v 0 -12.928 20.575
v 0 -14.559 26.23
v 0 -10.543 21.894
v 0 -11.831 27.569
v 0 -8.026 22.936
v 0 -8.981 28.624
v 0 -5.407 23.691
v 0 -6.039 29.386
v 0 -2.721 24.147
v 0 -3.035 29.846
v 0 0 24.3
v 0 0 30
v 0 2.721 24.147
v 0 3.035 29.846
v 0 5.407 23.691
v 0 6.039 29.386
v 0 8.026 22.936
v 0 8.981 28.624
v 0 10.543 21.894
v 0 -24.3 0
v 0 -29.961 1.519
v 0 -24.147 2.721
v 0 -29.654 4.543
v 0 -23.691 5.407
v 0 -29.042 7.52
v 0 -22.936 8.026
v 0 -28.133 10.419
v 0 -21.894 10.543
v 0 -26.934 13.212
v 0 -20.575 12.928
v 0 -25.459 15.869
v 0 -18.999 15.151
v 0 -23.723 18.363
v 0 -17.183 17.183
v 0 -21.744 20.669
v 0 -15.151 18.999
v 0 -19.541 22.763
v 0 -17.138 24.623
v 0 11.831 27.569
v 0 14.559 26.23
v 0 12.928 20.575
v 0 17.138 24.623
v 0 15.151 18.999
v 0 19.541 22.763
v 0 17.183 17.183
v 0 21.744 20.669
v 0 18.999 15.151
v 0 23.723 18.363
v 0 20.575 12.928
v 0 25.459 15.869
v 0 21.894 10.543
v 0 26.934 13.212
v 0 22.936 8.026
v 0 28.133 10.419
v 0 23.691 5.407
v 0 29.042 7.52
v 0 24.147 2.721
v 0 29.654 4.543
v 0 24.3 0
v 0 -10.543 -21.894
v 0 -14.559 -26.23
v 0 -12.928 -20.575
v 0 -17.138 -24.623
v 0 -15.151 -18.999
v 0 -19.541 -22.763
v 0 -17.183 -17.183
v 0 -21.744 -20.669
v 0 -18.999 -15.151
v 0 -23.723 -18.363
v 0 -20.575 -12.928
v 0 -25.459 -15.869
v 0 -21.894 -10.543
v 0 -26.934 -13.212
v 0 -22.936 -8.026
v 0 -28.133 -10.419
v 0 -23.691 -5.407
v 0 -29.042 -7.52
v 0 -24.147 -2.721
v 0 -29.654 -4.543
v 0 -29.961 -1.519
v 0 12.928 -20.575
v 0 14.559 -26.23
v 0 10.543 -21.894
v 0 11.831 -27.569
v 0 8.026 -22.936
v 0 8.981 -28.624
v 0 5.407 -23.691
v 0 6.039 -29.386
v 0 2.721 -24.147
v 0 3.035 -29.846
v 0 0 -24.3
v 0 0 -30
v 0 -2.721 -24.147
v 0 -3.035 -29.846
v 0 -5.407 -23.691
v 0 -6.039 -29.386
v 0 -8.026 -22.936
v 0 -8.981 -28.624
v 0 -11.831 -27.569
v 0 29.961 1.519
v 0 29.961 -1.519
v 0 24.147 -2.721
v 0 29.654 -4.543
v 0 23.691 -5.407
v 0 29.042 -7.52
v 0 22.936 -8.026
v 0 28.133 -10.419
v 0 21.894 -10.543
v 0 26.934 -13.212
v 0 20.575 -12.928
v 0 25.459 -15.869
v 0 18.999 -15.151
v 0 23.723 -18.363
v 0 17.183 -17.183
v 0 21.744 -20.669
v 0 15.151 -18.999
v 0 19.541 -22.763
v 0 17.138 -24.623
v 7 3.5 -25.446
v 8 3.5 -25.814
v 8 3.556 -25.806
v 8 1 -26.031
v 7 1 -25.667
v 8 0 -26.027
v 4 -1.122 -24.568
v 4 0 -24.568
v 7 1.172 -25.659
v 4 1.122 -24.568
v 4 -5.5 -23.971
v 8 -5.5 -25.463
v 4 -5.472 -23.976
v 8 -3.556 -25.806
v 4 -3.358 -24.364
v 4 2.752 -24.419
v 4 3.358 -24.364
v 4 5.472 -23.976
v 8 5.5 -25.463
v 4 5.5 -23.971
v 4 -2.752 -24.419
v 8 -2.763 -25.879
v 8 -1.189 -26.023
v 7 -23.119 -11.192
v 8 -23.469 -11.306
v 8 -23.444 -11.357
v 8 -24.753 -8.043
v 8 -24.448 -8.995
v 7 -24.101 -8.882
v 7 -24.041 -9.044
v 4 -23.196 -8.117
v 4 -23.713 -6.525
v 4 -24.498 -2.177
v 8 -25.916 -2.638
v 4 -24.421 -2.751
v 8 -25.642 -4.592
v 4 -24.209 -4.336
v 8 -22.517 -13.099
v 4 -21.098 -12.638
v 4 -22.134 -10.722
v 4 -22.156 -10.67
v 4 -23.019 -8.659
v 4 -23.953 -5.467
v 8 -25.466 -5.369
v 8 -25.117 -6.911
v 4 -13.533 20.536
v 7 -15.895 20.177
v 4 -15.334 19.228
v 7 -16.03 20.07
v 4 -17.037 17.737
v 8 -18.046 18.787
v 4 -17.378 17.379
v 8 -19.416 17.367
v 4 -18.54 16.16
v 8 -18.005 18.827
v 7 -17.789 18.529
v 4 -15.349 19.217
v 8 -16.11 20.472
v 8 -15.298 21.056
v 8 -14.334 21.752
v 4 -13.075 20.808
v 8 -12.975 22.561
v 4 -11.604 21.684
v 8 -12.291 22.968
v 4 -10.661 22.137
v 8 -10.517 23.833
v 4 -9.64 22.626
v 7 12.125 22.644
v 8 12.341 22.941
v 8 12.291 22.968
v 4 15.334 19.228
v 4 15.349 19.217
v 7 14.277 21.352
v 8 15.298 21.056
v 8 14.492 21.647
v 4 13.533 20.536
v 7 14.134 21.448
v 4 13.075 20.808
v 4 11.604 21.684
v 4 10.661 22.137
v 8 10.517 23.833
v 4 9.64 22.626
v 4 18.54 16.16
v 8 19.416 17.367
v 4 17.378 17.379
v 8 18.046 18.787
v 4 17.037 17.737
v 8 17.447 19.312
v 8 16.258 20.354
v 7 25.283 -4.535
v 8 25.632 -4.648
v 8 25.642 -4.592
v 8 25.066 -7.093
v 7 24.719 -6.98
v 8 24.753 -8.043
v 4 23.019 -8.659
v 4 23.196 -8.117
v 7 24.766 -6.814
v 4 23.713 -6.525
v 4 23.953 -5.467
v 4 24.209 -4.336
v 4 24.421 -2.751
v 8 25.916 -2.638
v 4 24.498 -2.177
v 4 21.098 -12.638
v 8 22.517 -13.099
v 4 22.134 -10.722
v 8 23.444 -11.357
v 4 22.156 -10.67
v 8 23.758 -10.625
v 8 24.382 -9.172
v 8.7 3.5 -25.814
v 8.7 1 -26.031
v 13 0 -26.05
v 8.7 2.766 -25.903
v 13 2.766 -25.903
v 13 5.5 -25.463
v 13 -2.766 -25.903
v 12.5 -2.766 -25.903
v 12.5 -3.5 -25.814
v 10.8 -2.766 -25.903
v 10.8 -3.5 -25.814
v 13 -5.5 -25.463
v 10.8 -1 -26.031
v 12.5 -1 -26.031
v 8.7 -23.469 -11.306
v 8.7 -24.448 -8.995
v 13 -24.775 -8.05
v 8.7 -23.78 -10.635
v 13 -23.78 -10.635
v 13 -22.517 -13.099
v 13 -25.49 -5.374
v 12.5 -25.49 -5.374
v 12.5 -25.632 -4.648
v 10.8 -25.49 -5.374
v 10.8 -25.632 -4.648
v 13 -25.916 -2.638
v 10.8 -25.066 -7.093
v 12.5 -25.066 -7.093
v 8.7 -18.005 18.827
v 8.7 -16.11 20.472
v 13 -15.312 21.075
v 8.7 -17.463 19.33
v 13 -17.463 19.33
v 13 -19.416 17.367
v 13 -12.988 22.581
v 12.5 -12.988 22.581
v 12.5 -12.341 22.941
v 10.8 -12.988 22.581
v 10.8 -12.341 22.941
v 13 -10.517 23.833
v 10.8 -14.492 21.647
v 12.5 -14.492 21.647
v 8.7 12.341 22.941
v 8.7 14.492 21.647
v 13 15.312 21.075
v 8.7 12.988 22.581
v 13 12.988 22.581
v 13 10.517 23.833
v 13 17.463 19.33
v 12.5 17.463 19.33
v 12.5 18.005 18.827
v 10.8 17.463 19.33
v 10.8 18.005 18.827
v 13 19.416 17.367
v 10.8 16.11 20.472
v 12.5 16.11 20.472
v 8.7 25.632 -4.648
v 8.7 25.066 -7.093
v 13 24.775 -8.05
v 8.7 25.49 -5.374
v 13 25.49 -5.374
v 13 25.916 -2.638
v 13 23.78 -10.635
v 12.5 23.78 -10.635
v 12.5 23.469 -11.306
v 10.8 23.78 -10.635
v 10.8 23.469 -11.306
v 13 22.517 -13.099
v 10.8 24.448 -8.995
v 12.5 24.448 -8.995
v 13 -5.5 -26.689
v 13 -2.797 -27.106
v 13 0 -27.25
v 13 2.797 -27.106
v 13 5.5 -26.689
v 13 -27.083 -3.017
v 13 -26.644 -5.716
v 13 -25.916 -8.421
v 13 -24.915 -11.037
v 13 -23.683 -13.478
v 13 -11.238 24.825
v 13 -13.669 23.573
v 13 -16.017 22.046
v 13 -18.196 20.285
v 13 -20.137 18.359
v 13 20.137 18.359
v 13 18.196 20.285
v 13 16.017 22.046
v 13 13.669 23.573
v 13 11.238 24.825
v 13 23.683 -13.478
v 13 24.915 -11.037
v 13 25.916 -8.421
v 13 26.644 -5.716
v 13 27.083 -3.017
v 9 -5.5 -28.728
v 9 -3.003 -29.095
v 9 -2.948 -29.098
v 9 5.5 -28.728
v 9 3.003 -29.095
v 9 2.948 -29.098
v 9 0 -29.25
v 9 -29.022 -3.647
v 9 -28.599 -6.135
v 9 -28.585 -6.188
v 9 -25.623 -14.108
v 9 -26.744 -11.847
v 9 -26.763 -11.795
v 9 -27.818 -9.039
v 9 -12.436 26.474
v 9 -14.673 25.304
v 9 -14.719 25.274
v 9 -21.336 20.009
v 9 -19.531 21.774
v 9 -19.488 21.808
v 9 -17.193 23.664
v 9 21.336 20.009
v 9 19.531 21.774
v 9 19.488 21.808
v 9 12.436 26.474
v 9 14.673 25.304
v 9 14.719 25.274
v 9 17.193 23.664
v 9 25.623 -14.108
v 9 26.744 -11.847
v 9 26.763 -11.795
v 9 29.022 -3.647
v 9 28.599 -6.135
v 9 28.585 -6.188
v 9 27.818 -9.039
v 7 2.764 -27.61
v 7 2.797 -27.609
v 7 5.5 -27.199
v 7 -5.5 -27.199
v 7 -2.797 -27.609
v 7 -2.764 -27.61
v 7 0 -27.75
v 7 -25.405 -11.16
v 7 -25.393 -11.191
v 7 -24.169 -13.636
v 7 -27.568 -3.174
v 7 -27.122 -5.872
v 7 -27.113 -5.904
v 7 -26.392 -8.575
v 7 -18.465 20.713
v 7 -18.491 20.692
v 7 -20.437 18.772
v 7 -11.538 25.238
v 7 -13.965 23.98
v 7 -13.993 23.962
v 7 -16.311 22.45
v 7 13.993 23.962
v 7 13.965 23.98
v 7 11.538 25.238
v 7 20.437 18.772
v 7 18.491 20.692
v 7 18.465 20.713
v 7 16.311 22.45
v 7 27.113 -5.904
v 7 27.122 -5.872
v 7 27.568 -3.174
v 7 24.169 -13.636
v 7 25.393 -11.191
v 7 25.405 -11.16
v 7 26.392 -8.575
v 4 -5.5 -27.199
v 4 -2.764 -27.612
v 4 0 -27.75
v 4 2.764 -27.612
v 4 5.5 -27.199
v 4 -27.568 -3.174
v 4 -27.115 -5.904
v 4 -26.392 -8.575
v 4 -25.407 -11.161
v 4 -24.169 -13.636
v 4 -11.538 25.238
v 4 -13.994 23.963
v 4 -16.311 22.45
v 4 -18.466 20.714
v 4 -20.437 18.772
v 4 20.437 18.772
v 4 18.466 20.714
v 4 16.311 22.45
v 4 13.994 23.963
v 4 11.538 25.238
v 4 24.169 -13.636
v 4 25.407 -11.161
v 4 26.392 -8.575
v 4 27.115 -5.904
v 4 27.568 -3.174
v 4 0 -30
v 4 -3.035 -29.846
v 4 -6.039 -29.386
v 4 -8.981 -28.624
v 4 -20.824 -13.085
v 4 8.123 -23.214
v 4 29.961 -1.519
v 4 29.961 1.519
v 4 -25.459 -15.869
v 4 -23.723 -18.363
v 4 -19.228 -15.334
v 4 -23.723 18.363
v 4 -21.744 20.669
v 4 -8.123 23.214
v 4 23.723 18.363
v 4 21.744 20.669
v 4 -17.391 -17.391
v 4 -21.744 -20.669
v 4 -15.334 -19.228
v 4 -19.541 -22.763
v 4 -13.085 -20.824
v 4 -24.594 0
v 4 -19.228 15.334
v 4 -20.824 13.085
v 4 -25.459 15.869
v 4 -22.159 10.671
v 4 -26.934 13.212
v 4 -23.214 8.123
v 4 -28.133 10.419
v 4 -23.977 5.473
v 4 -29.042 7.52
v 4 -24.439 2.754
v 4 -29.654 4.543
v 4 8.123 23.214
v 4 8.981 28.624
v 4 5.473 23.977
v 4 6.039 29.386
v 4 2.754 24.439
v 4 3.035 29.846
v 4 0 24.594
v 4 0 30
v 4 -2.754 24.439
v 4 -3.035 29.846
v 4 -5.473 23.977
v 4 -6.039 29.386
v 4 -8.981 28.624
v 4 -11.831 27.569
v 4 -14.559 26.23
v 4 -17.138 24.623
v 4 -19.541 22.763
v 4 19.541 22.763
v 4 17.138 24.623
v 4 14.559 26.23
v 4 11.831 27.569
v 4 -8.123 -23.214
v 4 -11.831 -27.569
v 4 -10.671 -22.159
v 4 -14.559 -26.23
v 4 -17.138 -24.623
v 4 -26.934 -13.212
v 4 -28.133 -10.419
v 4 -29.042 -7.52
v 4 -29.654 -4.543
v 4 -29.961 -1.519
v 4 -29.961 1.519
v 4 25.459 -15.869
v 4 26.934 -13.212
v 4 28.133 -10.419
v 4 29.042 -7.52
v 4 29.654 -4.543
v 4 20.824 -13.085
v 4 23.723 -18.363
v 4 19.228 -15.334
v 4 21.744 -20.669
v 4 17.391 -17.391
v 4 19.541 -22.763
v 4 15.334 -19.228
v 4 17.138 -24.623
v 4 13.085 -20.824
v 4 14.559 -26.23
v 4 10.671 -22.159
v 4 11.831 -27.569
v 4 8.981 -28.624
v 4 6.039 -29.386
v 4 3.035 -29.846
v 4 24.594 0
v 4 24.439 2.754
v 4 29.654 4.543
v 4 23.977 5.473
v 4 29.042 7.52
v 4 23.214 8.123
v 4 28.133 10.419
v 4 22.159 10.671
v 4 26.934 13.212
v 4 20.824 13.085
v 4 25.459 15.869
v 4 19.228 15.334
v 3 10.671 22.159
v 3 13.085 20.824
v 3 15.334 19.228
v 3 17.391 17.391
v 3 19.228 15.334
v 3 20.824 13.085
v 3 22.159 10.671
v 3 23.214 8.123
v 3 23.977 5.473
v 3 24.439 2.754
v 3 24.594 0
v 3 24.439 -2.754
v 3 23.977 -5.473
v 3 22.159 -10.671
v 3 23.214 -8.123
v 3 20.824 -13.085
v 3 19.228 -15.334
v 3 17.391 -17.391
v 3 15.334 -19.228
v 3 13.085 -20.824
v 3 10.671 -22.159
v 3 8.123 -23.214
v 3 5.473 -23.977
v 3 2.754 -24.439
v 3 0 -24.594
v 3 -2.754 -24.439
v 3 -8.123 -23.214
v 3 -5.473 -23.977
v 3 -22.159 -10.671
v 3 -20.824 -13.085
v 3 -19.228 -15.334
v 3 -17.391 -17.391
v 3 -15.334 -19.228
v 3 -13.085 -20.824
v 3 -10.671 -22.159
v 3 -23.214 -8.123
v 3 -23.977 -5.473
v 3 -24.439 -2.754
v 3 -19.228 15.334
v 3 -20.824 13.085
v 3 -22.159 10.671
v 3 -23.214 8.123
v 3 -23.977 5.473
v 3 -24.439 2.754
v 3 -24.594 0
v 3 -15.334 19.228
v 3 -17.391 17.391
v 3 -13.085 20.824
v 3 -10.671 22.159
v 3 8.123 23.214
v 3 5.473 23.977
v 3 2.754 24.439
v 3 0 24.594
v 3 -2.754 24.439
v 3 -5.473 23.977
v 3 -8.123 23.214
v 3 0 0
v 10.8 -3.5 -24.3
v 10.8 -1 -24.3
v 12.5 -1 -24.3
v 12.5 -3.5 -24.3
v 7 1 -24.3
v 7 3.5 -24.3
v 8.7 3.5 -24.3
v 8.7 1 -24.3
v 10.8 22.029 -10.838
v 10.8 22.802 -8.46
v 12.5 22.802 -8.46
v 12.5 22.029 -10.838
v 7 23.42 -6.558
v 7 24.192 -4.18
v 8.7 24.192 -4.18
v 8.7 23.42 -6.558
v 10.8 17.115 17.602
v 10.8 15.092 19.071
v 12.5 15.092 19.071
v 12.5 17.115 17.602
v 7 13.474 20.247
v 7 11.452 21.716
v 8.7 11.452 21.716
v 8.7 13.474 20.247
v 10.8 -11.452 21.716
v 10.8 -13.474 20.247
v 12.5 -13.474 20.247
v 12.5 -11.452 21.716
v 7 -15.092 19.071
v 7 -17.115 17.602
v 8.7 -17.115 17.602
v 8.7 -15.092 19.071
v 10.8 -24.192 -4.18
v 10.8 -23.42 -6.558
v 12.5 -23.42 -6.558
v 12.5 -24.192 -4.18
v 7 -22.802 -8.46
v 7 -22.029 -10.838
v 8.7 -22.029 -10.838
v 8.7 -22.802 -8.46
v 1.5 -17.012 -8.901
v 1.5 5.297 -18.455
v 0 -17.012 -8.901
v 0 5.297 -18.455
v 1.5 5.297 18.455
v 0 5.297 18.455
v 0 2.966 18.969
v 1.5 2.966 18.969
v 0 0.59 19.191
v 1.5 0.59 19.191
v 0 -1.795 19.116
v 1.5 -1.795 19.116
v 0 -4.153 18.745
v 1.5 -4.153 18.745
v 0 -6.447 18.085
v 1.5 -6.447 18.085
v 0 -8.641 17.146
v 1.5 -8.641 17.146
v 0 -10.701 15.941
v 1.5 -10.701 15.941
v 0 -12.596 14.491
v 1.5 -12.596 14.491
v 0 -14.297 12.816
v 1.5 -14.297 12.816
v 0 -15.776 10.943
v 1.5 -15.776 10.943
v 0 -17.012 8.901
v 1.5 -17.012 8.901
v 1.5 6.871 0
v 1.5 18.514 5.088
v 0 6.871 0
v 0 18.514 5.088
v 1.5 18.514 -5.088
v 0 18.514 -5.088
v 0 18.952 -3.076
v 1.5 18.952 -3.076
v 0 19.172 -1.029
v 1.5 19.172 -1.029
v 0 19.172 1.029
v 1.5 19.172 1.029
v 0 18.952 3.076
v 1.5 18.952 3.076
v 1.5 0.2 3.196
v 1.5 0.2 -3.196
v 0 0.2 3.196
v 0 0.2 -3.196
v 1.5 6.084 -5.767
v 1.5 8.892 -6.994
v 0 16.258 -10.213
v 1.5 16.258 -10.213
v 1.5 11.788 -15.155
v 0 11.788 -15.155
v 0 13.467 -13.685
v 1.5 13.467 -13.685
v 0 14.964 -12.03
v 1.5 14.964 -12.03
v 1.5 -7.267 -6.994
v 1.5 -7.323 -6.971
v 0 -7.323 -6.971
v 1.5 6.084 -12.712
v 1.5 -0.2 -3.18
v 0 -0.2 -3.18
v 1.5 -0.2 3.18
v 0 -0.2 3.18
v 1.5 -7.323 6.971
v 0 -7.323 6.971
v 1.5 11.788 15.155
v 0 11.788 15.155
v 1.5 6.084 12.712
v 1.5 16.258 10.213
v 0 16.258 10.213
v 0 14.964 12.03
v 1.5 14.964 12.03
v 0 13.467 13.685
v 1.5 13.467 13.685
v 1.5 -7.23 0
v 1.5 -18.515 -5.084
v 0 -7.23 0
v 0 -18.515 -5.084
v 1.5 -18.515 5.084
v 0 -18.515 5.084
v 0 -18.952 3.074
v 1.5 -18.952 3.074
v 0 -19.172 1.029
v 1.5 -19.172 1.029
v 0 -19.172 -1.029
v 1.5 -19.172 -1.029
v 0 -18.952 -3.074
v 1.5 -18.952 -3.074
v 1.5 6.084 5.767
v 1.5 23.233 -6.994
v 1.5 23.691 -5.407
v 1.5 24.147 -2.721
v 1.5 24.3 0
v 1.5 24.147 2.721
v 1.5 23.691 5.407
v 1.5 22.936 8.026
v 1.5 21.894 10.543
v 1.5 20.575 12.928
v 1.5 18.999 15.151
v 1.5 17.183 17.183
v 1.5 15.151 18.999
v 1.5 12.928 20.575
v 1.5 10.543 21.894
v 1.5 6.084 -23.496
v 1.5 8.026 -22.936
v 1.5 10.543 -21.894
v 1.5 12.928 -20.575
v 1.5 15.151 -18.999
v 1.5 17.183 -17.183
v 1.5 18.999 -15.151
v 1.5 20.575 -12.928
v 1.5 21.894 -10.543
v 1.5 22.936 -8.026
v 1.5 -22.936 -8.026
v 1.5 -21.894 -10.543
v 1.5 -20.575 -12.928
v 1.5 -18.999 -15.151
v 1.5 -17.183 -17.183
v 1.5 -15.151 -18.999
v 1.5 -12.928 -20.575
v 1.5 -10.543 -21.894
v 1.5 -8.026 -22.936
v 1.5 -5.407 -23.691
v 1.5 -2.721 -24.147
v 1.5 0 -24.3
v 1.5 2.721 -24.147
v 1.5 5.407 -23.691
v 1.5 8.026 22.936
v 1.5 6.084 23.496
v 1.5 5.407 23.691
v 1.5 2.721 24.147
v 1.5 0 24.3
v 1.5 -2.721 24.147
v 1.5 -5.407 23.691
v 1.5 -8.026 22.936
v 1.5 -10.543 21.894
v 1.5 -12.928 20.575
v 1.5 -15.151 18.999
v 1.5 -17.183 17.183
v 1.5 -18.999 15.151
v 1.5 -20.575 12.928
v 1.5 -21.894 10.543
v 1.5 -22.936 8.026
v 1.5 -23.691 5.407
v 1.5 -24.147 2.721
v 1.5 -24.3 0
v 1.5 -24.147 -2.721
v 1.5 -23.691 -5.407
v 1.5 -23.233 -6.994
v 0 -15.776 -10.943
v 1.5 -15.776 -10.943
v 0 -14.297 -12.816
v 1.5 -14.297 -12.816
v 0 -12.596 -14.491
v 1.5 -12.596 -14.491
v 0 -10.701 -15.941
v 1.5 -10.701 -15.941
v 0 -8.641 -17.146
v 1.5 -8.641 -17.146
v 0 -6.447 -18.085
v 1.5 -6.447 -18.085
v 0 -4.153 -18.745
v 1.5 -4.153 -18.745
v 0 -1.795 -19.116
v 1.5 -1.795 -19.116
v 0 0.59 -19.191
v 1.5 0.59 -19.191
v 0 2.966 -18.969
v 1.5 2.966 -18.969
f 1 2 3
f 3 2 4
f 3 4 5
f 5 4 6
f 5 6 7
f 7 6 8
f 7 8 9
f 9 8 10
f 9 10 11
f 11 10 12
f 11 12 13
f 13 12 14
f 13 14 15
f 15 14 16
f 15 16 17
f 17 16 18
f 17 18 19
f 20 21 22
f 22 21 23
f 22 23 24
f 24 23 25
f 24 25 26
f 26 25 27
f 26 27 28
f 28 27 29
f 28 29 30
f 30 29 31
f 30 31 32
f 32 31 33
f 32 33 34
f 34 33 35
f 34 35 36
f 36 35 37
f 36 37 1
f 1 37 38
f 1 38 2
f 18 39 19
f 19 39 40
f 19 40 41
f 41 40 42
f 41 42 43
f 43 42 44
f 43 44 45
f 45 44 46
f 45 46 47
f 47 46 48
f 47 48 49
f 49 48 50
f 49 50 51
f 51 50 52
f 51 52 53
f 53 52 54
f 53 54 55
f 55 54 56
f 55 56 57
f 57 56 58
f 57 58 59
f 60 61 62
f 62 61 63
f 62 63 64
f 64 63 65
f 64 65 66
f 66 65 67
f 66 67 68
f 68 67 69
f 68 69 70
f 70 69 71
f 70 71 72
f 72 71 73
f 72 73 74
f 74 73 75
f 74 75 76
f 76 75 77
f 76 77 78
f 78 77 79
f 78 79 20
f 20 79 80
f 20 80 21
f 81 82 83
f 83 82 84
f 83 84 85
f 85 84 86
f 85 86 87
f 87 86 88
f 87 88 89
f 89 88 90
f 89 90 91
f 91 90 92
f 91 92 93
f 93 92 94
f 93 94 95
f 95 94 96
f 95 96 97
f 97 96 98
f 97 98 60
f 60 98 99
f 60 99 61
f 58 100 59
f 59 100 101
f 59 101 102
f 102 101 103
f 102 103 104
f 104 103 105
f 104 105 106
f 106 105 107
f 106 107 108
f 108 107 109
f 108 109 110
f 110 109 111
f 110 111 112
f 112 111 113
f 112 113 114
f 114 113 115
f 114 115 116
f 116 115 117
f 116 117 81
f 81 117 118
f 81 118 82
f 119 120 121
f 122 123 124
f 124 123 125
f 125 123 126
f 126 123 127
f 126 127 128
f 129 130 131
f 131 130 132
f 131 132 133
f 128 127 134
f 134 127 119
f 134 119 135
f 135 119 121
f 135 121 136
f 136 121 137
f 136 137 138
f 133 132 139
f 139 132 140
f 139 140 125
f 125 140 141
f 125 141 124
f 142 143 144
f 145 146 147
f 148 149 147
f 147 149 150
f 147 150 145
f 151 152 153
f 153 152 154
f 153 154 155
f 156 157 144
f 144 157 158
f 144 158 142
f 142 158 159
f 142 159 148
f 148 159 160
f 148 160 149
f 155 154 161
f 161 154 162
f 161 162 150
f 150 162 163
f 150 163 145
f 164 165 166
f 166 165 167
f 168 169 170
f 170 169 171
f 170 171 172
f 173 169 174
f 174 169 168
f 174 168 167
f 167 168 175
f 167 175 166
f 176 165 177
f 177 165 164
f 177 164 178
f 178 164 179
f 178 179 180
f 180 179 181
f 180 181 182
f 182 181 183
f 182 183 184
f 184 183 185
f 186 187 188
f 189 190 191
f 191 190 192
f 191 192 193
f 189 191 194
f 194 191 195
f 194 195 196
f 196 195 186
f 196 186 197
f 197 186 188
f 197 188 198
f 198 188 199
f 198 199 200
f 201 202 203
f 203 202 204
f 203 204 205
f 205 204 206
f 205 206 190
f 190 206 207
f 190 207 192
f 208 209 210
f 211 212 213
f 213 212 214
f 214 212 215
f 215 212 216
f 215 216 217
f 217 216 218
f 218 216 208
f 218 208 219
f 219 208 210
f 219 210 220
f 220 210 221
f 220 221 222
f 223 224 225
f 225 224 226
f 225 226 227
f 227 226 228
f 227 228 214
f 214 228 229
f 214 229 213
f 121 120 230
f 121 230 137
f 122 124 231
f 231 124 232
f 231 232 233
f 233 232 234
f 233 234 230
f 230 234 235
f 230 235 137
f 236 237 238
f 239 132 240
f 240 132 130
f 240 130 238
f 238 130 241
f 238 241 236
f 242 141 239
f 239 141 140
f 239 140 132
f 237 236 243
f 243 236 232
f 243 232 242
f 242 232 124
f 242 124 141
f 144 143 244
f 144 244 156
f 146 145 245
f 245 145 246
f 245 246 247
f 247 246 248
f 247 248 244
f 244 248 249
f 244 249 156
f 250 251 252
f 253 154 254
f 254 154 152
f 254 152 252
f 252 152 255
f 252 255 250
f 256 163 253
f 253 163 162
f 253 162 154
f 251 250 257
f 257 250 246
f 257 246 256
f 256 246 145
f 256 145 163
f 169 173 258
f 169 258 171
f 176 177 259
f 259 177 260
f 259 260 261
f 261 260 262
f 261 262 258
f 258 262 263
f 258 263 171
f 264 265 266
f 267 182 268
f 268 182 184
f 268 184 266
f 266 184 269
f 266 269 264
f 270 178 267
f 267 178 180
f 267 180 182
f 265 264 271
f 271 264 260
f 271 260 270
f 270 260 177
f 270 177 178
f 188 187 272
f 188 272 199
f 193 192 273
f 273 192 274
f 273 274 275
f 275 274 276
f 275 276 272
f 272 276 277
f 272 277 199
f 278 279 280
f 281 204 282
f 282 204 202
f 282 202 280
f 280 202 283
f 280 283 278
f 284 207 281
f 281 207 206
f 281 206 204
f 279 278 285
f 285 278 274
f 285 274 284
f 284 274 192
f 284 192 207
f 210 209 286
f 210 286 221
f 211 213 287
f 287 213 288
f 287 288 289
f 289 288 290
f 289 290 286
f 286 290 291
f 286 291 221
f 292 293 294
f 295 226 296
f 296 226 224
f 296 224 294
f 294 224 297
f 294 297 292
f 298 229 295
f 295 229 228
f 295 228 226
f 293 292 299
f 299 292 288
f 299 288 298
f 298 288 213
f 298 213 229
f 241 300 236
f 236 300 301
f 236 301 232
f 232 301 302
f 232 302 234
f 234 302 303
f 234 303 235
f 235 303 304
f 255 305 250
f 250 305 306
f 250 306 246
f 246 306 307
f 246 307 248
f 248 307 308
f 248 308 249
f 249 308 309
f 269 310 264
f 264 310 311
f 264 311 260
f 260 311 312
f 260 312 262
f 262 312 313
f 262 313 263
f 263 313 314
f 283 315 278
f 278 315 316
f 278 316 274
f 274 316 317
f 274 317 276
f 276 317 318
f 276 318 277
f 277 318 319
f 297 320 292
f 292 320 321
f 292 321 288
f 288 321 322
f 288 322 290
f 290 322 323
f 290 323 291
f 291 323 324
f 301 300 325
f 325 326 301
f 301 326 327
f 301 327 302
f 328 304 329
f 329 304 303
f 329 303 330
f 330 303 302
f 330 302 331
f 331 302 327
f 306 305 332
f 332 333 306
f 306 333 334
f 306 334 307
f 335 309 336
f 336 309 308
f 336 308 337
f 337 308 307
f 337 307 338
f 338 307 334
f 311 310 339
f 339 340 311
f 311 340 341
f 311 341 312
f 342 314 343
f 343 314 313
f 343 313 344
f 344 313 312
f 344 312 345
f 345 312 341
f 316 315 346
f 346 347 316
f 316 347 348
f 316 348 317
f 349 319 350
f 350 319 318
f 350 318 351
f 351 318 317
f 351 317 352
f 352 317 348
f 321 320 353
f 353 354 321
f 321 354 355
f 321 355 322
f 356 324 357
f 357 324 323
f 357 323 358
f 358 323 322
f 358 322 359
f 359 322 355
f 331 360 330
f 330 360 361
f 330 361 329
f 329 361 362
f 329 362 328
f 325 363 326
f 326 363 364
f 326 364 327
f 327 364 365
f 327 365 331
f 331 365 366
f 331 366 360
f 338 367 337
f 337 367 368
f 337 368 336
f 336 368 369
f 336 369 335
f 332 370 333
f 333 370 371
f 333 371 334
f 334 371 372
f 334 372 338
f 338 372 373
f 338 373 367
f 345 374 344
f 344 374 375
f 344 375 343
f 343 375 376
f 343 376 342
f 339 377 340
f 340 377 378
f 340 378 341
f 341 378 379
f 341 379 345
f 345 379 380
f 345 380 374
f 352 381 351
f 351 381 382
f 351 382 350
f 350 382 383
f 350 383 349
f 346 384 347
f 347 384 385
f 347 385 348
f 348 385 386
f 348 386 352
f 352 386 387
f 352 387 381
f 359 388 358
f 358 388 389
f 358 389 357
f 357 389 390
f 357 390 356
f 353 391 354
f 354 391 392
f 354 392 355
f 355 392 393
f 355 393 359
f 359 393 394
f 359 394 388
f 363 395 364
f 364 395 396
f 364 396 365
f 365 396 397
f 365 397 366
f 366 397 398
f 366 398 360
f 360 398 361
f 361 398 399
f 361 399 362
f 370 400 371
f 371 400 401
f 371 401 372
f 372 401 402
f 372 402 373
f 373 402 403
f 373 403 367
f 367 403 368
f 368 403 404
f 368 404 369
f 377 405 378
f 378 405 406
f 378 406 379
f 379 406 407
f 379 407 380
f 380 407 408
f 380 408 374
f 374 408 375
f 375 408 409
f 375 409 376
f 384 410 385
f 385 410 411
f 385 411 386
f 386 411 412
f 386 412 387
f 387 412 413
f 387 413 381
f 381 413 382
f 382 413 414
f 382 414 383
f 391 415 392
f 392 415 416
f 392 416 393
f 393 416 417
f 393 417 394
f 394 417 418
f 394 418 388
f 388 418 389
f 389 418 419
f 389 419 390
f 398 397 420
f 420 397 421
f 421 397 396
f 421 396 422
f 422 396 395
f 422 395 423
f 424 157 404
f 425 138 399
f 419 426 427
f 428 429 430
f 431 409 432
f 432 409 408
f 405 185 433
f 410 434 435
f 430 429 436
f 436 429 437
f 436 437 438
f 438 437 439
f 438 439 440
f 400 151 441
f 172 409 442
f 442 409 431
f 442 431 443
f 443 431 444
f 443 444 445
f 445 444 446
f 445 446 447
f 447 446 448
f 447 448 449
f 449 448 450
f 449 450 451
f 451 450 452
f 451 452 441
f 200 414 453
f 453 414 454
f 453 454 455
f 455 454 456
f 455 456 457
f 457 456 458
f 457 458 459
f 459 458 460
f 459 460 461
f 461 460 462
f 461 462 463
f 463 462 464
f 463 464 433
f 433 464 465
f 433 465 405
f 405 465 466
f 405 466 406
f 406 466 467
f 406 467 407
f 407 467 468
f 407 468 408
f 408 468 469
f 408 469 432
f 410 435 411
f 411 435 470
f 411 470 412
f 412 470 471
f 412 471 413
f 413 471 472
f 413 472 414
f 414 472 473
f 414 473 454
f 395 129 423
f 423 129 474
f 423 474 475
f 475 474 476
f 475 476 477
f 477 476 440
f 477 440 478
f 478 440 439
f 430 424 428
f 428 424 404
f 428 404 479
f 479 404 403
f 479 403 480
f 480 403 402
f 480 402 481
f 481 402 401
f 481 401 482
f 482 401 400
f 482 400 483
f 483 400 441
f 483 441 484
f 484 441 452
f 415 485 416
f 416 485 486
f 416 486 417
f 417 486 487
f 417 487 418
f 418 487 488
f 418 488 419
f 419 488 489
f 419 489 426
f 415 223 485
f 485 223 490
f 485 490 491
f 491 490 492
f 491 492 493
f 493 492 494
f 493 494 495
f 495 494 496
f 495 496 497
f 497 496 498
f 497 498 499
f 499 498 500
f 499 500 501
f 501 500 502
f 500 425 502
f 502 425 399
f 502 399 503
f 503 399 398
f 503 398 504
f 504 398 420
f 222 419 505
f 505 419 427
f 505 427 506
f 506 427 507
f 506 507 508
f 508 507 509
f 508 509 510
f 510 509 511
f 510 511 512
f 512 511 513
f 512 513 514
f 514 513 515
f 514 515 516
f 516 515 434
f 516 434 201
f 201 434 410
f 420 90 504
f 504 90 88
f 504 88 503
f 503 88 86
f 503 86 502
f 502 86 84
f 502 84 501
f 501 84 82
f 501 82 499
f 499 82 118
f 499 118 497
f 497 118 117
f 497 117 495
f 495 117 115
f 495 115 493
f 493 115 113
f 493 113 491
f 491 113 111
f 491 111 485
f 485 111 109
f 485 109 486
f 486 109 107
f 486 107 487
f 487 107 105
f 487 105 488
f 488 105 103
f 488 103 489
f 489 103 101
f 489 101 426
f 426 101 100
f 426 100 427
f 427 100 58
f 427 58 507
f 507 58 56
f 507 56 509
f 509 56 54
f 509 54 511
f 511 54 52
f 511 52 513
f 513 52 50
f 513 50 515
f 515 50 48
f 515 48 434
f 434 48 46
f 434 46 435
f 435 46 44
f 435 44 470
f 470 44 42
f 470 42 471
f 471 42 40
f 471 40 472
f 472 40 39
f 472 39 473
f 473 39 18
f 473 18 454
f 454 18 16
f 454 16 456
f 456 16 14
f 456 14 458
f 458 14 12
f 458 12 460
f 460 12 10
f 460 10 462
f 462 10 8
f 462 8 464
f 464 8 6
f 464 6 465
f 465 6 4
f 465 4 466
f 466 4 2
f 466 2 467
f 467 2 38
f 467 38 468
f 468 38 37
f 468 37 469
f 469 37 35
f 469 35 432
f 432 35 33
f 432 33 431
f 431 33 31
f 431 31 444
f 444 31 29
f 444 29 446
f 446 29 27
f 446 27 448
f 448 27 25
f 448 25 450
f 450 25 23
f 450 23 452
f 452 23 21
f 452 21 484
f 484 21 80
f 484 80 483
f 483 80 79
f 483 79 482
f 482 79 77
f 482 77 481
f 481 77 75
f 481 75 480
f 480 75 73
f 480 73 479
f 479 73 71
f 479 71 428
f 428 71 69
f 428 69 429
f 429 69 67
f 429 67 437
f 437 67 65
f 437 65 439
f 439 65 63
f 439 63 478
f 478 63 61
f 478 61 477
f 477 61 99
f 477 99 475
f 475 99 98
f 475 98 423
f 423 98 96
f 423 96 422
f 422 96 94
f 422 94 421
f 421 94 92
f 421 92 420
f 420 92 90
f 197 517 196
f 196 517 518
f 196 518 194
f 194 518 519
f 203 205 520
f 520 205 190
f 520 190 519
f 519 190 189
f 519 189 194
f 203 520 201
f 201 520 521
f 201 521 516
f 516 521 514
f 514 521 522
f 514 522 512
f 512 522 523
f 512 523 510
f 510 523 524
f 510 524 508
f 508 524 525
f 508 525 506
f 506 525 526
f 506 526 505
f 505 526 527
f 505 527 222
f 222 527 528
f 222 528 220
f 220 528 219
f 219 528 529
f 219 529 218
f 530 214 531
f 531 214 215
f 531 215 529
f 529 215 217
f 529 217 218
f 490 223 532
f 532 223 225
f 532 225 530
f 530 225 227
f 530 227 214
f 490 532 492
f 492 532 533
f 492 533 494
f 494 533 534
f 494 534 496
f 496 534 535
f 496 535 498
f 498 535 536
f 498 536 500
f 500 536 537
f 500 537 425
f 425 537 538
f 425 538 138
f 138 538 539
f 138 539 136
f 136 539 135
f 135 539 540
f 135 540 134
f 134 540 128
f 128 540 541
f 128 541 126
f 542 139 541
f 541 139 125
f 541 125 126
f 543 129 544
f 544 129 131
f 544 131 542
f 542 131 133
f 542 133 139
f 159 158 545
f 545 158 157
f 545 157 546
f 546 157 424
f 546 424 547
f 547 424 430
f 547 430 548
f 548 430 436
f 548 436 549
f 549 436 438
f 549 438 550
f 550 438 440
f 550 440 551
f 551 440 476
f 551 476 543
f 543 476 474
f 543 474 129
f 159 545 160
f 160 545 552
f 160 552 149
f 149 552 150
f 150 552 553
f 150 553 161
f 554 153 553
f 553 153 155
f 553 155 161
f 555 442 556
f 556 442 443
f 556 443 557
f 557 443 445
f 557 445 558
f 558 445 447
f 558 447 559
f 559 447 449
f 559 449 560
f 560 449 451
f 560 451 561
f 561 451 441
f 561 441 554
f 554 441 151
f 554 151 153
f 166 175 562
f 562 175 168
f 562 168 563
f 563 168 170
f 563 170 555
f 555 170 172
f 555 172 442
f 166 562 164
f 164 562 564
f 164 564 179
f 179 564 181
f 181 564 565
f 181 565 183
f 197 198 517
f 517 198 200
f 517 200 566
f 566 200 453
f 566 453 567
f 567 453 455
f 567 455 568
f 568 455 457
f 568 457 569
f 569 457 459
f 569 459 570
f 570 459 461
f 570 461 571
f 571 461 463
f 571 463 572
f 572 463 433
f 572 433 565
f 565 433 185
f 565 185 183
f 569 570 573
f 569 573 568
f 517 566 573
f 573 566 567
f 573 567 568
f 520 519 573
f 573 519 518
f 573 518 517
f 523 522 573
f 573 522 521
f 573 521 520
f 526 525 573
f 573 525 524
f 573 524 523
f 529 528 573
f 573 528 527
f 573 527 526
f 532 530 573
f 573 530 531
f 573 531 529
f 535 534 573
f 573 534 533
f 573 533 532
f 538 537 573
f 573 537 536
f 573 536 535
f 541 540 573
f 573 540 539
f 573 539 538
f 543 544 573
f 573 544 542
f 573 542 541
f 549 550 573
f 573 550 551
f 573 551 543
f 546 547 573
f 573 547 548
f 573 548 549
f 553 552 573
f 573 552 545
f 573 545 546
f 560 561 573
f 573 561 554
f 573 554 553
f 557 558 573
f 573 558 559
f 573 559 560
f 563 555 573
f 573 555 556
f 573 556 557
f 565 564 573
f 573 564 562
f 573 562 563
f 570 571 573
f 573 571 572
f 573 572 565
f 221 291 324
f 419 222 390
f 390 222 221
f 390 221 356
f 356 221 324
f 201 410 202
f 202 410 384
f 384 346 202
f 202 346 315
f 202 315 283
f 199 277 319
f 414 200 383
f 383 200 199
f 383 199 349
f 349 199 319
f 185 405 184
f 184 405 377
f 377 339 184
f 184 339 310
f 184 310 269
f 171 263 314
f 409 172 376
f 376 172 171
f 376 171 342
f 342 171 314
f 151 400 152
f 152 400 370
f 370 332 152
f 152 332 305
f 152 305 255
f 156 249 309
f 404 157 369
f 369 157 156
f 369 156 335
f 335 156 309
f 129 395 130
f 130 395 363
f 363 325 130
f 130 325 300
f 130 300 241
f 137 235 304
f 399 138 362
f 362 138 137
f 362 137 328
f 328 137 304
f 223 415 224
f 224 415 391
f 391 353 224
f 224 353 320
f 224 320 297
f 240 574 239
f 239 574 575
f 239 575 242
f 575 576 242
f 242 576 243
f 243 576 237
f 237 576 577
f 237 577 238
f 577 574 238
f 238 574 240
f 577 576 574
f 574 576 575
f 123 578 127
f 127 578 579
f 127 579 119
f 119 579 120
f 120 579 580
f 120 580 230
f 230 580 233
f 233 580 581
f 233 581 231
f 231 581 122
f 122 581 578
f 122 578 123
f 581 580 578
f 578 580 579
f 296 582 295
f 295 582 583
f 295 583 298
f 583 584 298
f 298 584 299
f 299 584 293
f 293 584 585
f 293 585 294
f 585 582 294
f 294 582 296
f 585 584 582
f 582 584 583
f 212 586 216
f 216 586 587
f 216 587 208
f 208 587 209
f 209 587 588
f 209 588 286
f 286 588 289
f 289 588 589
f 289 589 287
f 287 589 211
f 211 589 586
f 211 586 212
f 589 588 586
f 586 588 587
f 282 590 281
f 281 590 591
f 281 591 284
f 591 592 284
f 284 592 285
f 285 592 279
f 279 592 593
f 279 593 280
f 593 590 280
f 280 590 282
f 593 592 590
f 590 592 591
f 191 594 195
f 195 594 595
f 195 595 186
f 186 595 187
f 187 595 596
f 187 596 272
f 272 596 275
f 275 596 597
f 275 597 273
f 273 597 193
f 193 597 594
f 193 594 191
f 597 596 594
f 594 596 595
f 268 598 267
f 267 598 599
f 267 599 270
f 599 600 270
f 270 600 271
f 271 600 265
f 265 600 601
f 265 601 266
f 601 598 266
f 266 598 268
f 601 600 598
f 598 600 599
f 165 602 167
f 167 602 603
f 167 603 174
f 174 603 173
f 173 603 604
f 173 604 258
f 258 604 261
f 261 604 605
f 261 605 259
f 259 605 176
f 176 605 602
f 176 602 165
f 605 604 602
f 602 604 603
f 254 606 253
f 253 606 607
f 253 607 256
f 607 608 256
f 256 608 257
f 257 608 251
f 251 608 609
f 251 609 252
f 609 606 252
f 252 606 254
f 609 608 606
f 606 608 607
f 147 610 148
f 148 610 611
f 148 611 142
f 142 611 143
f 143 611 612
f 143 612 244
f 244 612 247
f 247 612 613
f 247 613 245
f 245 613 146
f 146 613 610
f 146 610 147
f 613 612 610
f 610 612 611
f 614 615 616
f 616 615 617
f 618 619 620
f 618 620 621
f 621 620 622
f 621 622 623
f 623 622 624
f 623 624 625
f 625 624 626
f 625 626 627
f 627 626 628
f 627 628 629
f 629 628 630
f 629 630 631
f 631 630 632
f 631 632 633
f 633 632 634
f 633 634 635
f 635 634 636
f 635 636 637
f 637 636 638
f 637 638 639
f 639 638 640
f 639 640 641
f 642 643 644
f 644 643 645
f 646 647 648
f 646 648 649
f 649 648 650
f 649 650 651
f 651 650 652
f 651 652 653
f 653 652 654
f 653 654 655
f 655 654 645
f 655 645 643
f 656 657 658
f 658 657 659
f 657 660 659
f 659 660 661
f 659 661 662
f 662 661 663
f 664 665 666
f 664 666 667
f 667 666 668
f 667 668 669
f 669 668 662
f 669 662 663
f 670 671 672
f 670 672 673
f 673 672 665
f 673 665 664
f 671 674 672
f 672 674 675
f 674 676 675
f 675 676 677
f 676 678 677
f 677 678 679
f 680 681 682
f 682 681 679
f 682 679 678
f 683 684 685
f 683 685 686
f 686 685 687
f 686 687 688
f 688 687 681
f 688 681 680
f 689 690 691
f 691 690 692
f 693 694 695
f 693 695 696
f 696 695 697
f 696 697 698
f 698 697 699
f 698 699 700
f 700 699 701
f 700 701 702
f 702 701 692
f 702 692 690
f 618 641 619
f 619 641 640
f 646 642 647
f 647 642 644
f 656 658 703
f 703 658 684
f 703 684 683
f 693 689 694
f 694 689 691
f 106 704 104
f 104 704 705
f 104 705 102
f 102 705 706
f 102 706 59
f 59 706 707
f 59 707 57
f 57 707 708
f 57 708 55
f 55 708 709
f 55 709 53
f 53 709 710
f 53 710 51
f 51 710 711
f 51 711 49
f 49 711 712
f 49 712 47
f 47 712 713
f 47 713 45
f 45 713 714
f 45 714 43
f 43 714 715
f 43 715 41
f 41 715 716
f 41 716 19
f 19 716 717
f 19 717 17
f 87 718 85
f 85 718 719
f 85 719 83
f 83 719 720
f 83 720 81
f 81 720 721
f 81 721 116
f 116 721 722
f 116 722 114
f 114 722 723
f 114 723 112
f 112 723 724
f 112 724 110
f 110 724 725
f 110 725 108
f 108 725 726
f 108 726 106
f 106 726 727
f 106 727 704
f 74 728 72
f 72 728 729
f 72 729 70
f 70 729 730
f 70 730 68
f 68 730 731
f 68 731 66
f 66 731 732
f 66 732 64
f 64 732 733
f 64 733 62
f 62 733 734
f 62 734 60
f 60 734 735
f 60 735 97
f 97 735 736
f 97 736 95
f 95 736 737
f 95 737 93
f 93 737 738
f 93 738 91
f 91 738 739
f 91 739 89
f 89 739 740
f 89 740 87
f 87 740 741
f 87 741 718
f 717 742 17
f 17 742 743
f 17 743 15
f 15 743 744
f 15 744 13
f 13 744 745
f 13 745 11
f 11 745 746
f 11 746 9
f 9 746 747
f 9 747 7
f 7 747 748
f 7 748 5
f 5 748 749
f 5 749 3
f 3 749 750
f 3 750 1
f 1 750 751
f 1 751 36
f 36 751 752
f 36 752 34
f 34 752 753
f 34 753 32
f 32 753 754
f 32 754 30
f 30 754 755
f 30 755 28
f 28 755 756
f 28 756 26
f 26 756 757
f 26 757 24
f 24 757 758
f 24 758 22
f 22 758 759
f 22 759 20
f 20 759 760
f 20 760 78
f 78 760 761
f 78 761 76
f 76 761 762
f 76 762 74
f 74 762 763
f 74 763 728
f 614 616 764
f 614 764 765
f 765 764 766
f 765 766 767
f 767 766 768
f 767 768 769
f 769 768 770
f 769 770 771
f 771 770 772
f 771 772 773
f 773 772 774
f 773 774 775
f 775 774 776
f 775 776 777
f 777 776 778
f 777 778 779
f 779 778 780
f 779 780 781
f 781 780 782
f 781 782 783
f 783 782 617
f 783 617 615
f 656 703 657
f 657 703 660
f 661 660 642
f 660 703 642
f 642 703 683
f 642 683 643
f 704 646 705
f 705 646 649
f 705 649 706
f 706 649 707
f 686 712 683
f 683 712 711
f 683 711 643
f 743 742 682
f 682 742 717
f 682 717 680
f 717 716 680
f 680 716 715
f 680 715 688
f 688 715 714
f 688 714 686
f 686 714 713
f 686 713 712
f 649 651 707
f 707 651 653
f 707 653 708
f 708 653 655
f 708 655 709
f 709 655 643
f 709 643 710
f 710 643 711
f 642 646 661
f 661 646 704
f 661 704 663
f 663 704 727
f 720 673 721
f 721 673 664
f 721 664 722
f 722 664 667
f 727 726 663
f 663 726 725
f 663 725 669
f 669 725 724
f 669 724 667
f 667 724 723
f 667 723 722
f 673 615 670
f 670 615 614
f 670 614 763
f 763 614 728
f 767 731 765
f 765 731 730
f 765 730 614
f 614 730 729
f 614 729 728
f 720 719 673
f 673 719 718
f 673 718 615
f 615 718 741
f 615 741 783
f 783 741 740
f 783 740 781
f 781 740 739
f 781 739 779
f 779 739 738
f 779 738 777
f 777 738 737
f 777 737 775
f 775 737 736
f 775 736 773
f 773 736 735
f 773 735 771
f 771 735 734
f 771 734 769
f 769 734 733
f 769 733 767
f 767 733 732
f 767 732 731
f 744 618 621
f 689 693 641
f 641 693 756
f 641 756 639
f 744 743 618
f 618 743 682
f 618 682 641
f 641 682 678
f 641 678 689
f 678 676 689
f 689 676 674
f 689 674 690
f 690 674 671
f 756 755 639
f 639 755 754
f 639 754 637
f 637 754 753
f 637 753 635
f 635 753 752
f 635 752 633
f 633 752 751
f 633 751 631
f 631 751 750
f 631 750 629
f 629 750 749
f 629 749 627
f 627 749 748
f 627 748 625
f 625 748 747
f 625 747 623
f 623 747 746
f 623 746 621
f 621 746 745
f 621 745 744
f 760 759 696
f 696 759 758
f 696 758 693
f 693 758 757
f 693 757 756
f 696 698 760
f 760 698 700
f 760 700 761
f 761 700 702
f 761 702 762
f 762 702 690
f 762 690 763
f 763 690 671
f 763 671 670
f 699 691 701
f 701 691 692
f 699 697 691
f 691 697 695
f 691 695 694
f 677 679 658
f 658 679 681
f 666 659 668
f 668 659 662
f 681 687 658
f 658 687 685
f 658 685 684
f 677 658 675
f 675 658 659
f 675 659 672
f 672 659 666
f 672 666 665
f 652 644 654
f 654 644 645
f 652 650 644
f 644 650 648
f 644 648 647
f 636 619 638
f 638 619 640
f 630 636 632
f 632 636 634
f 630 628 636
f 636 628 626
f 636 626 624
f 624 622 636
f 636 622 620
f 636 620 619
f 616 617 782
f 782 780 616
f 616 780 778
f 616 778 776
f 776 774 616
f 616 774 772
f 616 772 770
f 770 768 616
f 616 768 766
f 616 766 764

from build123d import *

# Parameters (mm, degrees)
CUT_EXTRUDE_1_DEPTH      = 9
SKETCH_4_W               = 1.7
SKETCH_4_H               = 2.5
EXTRUDE_1_DEPTH          = 2
PATTERN_CIRCULAR_1_COUNT = 5
SKETCH_5_R               = 24.3
CUT_EXTRUDE_2_DEPTH      = 1.5


with BuildPart() as part:
    # Эскиз1 → Повернуть1 (revolve)
    with BuildSketch(Plane.XY, mode=Mode.PRIVATE) as revolve_1_sk:
        Polygon((0, 30), (4, 30), (4, 26), (3, 26), (3, 0), (0, 0), align=None)
    revolve(revolve_1_sk.sketch.rotate(Axis((0, 0, 0), (-1, 0, 0)), 90), axis=Axis((0, 0, 0), (-1, 0, 0)))

    # Эскиз2 → Повернуть2 (revolve)
    with BuildSketch(Plane.XY, mode=Mode.PRIVATE) as revolve_2_sk:
        Polygon((4, 24.594119063), (8, 26.05), (13, 26.05), (13, 27.25), (9, 29.25), (7, 27.75), (3, 27.75), (3, 24.594119063), align=None)
    revolve(revolve_2_sk.sketch.rotate(Axis((0, 0, 0), (1, 0, 0)), 90), axis=Axis((0, 0, 0), (1, 0, 0)))

    # Эскиз3 → Вырез-Вытянуть1 (cut)
    with BuildSketch(Plane(origin=(13, 0, 0), x_dir=(0, 0, -1), z_dir=(1, 0, 0))):
        with BuildLine():
            ThreePointArc((13.478222015, -23.68332813), (22.045713097, -16.017148125), (26.689183202, -5.5))
            Line((26.689183202, -5.5), (25.462766935, -5.5))
            ThreePointArc((25.462766935, -5.5), (21.074892703, -15.311805822), (13.099238546, -22.516936948))
            Line((13.099238546, -22.516936948), (13.478222015, -23.68332813))
        make_face()
        with BuildLine():
            ThreePointArc((13.099238546, -22.516936948), (21.074892703, -15.311805822), (25.462766935, -5.5))
            Line((25.462766935, -5.5), (23.971247203, -5.5))
            ThreePointArc((23.971247203, -5.5), (19.897060284, -14.456060478), (12.638333602, -21.098417387))
            Line((12.638333602, -21.098417387), (13.099238546, -22.516936948))
        make_face()
        with BuildLine():
            ThreePointArc((-18.359183889, -20.137101751), (-8.420713097, -25.916290069), (3.016600336, -27.082515068))
            Line((3.016600336, -27.082515068), (2.637616867, -25.916123886))
            ThreePointArc((2.637616867, -25.916123886), (-8.049892703, -24.775022249), (-17.366992287, -19.416232356))
            Line((-17.366992287, -19.416232356), (-18.359183889, -20.137101751))
        make_face()
        with BuildLine():
            ThreePointArc((-17.366992287, -19.416232356), (-8.049892703, -24.775022249), (2.637616867, -25.916123886))
            Line((2.637616867, -25.916123886), (2.176711923, -24.497604325))
            ThreePointArc((2.176711923, -24.497604325), (-7.600000752, -23.390397197), (-16.160327476, -18.539539054))
            Line((-16.160327476, -18.539539054), (-17.366992287, -19.416232356))
        make_face()
        with BuildLine():
            Line((-23.832630062, 10.517045418), (-24.824821664, 11.237914813))
            ThreePointArc((-24.824821664, 11.237914813), (-27.25, 0), (-24.824821664, -11.237914813))
            Line((-24.824821664, -11.237914813), (-23.832630062, -10.517045418))
            ThreePointArc((-23.832630062, -10.517045418), (-26.05, 0), (-23.832630062, 10.517045418))
        make_face()
        with BuildLine():
            Line((-22.625965251, 9.640352116), (-23.832630062, 10.517045418))
            ThreePointArc((-23.832630062, 10.517045418), (-26.05, 0), (-23.832630062, -10.517045418))
            Line((-23.832630062, -10.517045418), (-22.625965251, -9.640352116))
            ThreePointArc((-22.625965251, -9.640352116), (-24.594119063, 0), (-22.625965251, 9.640352116))
        make_face()
        with BuildLine():
            Line((2.637616867, 25.916123886), (3.016600336, 27.082515068))
            ThreePointArc((3.016600336, 27.082515068), (-8.420713097, 25.916290069), (-18.359183889, 20.137101751))
            Line((-18.359183889, 20.137101751), (-17.366992287, 19.416232356))
            ThreePointArc((-17.366992287, 19.416232356), (-8.049892703, 24.775022249), (2.637616867, 25.916123886))
        make_face()
        with BuildLine():
            Line((2.176711923, 24.497604325), (2.637616867, 25.916123886))
            ThreePointArc((2.637616867, 25.916123886), (-8.049892703, 24.775022249), (-17.366992287, 19.416232356))
            Line((-17.366992287, 19.416232356), (-16.160327476, 18.539539054))
            ThreePointArc((-16.160327476, 18.539539054), (-7.600000752, 23.390397197), (2.176711923, 24.497604325))
        make_face()
        with BuildLine():
            Line((25.462766935, 5.5), (26.689183202, 5.5))
            ThreePointArc((26.689183202, 5.5), (22.045713097, 16.017148125), (13.478222015, 23.68332813))
            Line((13.478222015, 23.68332813), (13.099238546, 22.516936948))
            ThreePointArc((13.099238546, 22.516936948), (21.074892703, 15.311805822), (25.462766935, 5.5))
        make_face()
        with BuildLine():
            Line((23.971247203, 5.5), (25.462766935, 5.5))
            ThreePointArc((25.462766935, 5.5), (21.074892703, 15.311805822), (13.099238546, 22.516936948))
            Line((13.099238546, 22.516936948), (12.638333602, 21.098417387))
            ThreePointArc((12.638333602, 21.098417387), (19.897060284, 14.456060478), (23.971247203, 5.5))
        make_face()
        with BuildLine():
            Line((3.016600336, 27.082515068), (4.573471173, 31.874070813))
            ThreePointArc((4.573471173, 31.874070813), (-9.950505703, 30.624507588), (-22.435124657, 23.09844606))
            Line((-22.435124657, 23.09844606), (-18.359183889, 20.137101751))
            ThreePointArc((-18.359183889, 20.137101751), (-8.420713097, 25.916290069), (3.016600336, 27.082515068))
        make_face()
        with BuildLine():
            Line((-24.824821664, 11.237914813), (-28.900762432, 14.199259122))
            ThreePointArc((-28.900762432, 14.199259122), (-32.200512865, 0), (-28.900762432, -14.199259122))
            Line((-28.900762432, -14.199259122), (-24.824821664, -11.237914813))
            ThreePointArc((-24.824821664, -11.237914813), (-27.25, 0), (-24.824821664, 11.237914813))
        make_face()
        with BuildLine():
            ThreePointArc((-22.435124657, -23.09844606), (-9.950505703, -30.624507588), (4.573471173, -31.874070813))
            Line((4.573471173, -31.874070813), (3.016600336, -27.082515068))
            ThreePointArc((3.016600336, -27.082515068), (-8.420713097, -25.916290069), (-18.359183889, -20.137101751))
            Line((-18.359183889, -20.137101751), (-22.435124657, -23.09844606))
        make_face()
        with BuildLine():
            ThreePointArc((15.035092852, -28.474883875), (26.050762135, -18.926986578), (31.727323063, -5.5))
            Line((31.727323063, -5.5), (26.689183202, -5.5))
            ThreePointArc((26.689183202, -5.5), (22.045713097, -16.017148125), (13.478222015, -23.68332813))
            Line((13.478222015, -23.68332813), (15.035092852, -28.474883875))
        make_face()
        with BuildLine():
            Line((26.689183202, 5.5), (31.727323063, 5.5))
            ThreePointArc((31.727323063, 5.5), (26.050762135, 18.926986578), (15.035092852, 28.474883875))
            Line((15.035092852, 28.474883875), (13.478222015, 23.68332813))
            ThreePointArc((13.478222015, 23.68332813), (22.045713097, 16.017148125), (26.689183202, 5.5))
        make_face()
    extrude(amount=-CUT_EXTRUDE_1_DEPTH, mode=Mode.SUBTRACT)

    # Эскиз4 → Бобышка-Вытянуть1 (add)
    with BuildSketch(Plane.XY.offset(-24.3)):
        with Locations((11.65, -2.25)):
            Rectangle(SKETCH_4_W, SKETCH_4_H)
        with Locations((7.85, 2.25)):
            Rectangle(SKETCH_4_W, SKETCH_4_H)
    extrude_1 = extrude(amount=-EXTRUDE_1_DEPTH)

    # Круговой массив1: Бобышка-Вытянуть1 ×5 about axis
    pattern_circular_1_axis = Axis((0, 0, 0), (1, 0, 0))
    for i in range(1, PATTERN_CIRCULAR_1_COUNT):
        add(extrude_1.rotate(pattern_circular_1_axis, i * 360 / PATTERN_CIRCULAR_1_COUNT))

    # Эскиз5 → Вырез-Вытянуть2 (cut)
    with BuildSketch(Plane(origin=(0, 0, 0), x_dir=(0, 0, -1), z_dir=(1, 0, 0))):
        with Locations(Location((0, 0, 0), (0, 0, 180))):
            Circle(SKETCH_5_R)
        with BuildLine():
            Line((-5.087573742, 18.513686651), (0, 6.870909772))
            Line((0, 6.870909772), (5.087573742, 18.513686651))
            ThreePointArc((5.087573742, 18.513686651), (0, 19.2), (-5.087573742, 18.513686651))
        make_face(mode=Mode.SUBTRACT)
        with BuildLine():
            Line((-10.213287696, 16.25819038), (-3.196299518, 0.2))
            Line((-3.196299518, 0.2), (3.196299518, 0.2))
            Line((3.196299518, 0.2), (10.213287696, 16.25819038))
            ThreePointArc((10.213287696, 16.25819038), (12.879492014, 14.239335851), (15.154936685, 11.788464449))
            Line((15.154936685, 11.788464449), (6.970698587, -7.322816425))
            Line((6.970698587, -7.322816425), (3.180185716, -0.2))
            Line((3.180185716, -0.2), (-3.180185716, -0.2))
            Line((-3.180185716, -0.2), (-6.970698587, -7.322816425))
            Line((-6.970698587, -7.322816425), (-15.154936685, 11.788464449))
            ThreePointArc((-15.154936685, 11.788464449), (-12.879492014, 14.239335851), (-10.213287696, 16.25819038))
        make_face(mode=Mode.SUBTRACT)
        with BuildLine():
            Line((-8.901263668, -17.011981223), (-18.454870493, 5.296957155))
            ThreePointArc((-18.454870493, 5.296957155), (-17.649694103, -7.558326406), (-8.901263668, -17.011981223))
        make_face(mode=Mode.SUBTRACT)
        with BuildLine():
            Line((0, -7.230363982), (-5.083762601, -18.514733534))
            ThreePointArc((-5.083762601, -18.514733534), (0, -19.2), (5.083762601, -18.514733534))
            Line((5.083762601, -18.514733534), (0, -7.230363982))
        make_face(mode=Mode.SUBTRACT)
        with BuildLine():
            Line((8.901263668, -17.011981223), (18.454870493, 5.296957155))
            ThreePointArc((18.454870493, 5.296957155), (17.649694103, -7.558326406), (8.901263668, -17.011981223))
        make_face(mode=Mode.SUBTRACT)
    extrude(amount=CUT_EXTRUDE_2_DEPTH, mode=Mode.SUBTRACT)


solid = part.part
